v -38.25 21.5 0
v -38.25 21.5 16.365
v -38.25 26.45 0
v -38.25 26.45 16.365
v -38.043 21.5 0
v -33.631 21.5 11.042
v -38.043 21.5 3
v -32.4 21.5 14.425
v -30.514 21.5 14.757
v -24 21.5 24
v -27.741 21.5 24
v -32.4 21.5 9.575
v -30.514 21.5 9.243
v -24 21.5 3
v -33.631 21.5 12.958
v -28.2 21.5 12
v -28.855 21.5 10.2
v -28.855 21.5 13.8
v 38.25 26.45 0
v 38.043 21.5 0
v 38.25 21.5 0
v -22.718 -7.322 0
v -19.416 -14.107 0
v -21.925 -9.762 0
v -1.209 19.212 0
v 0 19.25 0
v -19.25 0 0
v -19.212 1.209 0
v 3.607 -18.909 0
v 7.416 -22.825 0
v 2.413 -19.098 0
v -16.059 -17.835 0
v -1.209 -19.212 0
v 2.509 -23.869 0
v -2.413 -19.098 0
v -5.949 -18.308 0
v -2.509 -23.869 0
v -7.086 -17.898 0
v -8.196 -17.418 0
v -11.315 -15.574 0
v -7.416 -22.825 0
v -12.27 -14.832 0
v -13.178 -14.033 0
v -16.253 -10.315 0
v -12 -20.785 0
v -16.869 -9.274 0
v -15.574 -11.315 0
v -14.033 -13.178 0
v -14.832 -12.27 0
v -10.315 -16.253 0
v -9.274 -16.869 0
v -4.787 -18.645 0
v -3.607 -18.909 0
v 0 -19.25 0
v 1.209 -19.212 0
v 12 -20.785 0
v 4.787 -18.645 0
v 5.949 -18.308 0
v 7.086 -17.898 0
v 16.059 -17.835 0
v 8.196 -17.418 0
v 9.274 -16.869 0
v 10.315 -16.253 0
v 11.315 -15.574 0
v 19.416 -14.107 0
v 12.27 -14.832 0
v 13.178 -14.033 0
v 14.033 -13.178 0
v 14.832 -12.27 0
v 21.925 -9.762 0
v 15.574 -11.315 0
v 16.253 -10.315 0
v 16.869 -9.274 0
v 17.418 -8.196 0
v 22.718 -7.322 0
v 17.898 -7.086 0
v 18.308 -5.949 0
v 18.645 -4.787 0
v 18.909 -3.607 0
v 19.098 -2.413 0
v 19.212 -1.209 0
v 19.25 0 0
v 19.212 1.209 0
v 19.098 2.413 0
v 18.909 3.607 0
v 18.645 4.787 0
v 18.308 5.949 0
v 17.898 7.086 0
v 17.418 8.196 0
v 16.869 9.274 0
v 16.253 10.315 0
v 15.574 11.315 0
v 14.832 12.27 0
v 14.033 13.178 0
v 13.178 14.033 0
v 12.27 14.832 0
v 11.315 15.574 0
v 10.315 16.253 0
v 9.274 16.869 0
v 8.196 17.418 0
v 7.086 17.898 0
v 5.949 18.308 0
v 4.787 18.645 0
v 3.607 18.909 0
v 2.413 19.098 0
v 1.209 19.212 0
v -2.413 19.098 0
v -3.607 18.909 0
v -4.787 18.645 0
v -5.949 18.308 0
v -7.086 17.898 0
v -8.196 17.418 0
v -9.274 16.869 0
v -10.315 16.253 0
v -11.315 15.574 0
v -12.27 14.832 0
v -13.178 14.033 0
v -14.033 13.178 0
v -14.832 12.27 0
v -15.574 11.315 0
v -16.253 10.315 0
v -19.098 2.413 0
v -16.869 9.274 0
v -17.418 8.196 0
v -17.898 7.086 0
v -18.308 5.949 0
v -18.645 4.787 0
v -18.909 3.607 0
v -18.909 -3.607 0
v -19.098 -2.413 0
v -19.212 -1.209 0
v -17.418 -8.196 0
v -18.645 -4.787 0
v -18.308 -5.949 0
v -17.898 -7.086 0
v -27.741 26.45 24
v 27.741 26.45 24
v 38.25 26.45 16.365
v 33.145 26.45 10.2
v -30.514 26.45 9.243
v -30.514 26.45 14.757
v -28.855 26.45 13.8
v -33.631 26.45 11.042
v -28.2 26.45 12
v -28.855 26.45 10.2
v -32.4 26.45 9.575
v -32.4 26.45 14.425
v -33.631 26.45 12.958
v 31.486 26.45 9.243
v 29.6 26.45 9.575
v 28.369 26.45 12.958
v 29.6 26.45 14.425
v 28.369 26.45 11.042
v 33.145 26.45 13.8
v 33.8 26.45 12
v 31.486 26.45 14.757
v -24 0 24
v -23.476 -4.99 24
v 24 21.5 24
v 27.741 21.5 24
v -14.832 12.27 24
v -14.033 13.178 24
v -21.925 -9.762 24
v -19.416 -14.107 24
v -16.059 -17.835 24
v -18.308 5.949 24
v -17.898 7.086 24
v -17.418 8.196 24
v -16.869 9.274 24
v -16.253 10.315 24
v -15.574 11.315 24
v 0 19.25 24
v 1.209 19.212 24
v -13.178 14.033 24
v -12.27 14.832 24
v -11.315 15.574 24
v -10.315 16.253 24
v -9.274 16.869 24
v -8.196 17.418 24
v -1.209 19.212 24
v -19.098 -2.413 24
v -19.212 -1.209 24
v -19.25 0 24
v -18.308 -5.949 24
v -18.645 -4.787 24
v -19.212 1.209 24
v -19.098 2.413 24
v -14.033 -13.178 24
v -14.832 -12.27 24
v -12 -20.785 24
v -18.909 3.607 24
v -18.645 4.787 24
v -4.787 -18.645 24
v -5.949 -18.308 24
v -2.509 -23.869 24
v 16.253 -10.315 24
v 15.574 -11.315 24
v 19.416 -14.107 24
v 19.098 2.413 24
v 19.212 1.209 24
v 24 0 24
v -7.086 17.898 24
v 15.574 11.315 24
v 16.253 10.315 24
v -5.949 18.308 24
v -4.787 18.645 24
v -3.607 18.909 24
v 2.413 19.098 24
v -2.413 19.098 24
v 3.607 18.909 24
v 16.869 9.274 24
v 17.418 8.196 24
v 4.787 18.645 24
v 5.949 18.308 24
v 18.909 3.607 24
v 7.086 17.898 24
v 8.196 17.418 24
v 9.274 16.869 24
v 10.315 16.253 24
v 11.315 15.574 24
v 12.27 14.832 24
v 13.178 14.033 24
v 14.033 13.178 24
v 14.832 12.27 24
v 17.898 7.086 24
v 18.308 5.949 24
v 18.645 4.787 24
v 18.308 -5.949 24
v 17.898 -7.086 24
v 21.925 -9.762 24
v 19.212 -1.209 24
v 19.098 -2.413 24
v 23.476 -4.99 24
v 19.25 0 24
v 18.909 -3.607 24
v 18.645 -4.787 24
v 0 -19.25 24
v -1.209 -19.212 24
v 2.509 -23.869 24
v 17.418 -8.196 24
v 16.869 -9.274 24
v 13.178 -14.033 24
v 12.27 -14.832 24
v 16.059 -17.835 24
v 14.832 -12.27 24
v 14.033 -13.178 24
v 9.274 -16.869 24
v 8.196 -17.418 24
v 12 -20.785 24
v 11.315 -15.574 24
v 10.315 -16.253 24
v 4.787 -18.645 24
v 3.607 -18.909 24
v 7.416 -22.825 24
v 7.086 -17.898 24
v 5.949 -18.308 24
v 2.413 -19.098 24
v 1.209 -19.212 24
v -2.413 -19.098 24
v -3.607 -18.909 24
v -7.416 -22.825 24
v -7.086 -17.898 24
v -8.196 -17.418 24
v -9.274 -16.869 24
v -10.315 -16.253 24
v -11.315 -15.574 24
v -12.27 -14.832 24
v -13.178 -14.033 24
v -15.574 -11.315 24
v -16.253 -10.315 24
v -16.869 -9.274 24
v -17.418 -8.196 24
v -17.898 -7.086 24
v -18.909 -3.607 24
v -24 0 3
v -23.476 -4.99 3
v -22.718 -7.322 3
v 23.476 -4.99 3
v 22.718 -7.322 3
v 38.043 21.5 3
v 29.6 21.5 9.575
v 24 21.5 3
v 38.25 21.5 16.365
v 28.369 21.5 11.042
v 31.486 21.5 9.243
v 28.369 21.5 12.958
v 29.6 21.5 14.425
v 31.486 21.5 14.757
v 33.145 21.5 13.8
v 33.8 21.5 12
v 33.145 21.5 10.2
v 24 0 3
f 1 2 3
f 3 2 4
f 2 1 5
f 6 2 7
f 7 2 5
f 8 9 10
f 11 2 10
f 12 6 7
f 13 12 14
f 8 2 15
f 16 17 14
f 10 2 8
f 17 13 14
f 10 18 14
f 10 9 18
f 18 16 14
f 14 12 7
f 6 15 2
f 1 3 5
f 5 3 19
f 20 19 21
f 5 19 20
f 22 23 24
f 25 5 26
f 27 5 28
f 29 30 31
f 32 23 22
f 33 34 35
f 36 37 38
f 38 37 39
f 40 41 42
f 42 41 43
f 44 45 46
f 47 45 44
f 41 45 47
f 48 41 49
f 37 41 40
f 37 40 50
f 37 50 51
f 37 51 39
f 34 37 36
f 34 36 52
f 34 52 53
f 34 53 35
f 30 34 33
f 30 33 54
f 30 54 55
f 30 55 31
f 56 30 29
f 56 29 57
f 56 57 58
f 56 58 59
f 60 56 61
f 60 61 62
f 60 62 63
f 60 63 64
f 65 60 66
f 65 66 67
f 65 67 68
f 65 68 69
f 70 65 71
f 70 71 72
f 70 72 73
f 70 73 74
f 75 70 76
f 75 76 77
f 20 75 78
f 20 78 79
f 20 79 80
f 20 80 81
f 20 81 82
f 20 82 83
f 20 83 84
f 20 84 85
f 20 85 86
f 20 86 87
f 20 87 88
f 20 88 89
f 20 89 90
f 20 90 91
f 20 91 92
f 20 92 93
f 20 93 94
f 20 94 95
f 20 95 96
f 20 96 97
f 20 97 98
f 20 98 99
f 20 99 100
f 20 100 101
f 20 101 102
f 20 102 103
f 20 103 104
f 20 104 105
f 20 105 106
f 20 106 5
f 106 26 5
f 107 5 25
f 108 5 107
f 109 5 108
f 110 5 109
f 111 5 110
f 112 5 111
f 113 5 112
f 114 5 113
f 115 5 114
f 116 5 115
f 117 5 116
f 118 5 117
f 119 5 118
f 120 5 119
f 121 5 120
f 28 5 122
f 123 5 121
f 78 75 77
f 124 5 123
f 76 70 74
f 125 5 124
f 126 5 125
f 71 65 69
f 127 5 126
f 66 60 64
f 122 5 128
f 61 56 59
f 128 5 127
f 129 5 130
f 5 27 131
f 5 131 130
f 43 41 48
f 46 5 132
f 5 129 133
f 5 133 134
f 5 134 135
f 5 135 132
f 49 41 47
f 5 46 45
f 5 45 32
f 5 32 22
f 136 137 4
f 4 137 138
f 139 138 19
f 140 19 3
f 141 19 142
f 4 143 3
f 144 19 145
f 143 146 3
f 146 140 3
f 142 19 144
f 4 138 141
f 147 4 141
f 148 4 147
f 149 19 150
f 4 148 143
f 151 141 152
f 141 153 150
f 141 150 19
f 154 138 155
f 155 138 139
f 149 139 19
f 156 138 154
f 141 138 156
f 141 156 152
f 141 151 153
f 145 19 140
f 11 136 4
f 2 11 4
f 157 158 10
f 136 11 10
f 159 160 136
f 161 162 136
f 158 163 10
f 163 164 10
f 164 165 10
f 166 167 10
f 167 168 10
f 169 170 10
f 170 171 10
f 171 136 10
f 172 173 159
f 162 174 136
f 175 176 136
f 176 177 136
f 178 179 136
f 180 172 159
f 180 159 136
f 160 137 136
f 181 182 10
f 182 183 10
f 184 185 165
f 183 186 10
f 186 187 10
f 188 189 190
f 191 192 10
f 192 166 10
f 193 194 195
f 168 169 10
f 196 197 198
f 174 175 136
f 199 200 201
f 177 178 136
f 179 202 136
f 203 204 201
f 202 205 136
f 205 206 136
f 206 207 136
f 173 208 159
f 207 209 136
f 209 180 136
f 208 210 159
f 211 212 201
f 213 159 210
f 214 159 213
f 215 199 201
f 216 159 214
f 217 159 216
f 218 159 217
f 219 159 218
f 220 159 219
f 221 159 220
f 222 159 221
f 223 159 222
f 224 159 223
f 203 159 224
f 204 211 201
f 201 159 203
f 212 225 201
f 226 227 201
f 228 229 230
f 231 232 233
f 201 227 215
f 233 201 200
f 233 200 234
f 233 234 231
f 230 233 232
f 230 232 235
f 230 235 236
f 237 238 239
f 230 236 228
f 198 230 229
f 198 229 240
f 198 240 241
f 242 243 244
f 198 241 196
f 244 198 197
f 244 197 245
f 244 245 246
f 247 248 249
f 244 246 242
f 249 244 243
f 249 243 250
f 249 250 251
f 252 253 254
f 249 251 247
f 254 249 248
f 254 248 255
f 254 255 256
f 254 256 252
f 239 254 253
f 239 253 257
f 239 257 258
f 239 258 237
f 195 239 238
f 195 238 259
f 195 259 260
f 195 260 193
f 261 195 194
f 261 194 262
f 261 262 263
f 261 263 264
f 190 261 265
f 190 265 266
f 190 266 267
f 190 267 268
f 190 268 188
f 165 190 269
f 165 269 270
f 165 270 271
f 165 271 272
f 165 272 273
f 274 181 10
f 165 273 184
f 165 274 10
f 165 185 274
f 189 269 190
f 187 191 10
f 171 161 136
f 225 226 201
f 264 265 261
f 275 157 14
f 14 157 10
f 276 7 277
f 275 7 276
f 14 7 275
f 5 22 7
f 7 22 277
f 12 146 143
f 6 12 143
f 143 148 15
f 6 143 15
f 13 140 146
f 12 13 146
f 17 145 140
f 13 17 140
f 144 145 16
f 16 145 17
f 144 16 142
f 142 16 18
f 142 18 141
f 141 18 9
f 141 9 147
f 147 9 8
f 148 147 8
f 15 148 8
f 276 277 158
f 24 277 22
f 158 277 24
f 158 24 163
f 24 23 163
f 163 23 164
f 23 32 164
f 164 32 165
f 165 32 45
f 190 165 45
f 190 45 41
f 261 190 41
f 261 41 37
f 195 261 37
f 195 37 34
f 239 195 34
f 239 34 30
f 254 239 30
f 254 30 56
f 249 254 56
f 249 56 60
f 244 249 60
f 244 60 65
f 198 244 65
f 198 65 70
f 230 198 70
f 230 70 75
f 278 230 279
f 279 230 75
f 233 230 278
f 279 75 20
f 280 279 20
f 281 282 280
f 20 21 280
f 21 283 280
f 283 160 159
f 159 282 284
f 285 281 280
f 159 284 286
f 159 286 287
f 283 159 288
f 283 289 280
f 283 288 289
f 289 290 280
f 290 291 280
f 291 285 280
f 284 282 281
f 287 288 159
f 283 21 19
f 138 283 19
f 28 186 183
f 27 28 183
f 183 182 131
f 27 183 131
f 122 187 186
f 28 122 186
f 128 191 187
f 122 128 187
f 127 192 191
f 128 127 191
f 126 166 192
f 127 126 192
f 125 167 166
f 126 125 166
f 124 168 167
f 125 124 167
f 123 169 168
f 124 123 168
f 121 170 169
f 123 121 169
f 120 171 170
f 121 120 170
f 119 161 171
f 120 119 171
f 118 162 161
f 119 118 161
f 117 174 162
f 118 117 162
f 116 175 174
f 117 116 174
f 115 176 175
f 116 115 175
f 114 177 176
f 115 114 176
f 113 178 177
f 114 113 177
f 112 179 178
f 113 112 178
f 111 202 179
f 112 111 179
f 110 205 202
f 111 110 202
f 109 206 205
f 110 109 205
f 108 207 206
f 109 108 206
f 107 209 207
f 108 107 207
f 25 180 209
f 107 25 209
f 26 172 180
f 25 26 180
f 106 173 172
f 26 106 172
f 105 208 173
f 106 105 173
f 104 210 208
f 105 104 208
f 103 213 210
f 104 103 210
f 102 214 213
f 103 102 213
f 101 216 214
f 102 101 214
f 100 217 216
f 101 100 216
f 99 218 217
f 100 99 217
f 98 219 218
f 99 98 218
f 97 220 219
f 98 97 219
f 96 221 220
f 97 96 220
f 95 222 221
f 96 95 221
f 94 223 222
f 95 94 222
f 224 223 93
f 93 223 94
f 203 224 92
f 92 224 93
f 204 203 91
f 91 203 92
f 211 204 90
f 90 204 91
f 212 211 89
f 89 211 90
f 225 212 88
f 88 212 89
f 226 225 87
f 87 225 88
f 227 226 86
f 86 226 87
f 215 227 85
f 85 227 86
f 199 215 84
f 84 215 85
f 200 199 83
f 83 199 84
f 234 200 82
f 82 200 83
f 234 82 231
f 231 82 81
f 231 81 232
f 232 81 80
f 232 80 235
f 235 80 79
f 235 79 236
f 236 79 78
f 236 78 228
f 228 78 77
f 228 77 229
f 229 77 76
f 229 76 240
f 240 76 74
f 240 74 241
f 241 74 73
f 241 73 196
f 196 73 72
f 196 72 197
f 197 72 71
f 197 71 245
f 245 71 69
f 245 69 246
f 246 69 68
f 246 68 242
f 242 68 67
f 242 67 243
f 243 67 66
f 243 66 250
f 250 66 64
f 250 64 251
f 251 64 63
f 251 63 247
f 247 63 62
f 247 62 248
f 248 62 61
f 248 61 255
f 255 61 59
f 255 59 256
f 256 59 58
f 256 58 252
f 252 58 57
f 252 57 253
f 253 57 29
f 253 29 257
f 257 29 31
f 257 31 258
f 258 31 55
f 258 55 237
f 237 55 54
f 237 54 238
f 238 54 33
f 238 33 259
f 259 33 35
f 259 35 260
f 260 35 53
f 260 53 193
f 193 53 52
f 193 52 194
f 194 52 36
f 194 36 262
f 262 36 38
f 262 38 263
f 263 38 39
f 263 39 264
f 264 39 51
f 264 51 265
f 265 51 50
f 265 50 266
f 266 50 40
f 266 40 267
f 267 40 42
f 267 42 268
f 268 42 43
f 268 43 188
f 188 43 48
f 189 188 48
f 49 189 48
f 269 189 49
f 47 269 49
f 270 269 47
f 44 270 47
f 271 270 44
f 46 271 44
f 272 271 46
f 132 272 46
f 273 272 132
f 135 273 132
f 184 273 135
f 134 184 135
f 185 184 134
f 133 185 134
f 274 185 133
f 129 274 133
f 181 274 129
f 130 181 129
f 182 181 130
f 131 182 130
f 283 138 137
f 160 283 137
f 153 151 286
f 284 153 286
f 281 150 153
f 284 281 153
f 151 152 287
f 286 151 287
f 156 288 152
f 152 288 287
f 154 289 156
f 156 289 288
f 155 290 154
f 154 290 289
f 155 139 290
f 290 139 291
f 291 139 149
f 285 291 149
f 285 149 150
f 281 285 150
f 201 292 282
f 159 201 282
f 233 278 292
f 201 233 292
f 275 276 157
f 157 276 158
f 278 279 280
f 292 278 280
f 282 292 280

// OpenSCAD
DrillMotorMountBack();

module DrillMotorMountBack()
{
	difference()
	{
		union()
		{
			// body mount
			translate([0,13,24/2])
				cube([48,26,24],center=true);
			translate([0,0,12])
				cylinder(r=48/2,h=24, center=true);

			// mounting tab
			translate([0,24,24/2])
				cube([76.5,5,24],center=true);

			translate([24,10,3/2]) rotate([0,0,-28])
				cube([14,34,3],center=true);
			translate([-24,10,3/2]) rotate([0,0,28])
				cube([14,34,3],center=true);
		}

		// through hole
		translate([0,0,10])
			cylinder(r=38.5/2,h=30, center=true, $fn=100);

		// mounting holes on tabs
		translate([31,20,24/2]) rotate([90,0,0])
			cylinder(r=2.8,h=20, center=true);
		translate([-31,20,24/2]) rotate([90,0,0])
			cylinder(r=2.8,h=20, center=true);

		// cut off excess
		translate([0,24+5,24/2])
			cube([80,5.1,26],center=true);

		translate([39,24,22]) rotate([0,36,0])
			cube([30,5.2,10],center=true);
		translate([-39,24,22]) rotate([0,-36,0])
			cube([30,5.2,10],center=true);
	}
}
